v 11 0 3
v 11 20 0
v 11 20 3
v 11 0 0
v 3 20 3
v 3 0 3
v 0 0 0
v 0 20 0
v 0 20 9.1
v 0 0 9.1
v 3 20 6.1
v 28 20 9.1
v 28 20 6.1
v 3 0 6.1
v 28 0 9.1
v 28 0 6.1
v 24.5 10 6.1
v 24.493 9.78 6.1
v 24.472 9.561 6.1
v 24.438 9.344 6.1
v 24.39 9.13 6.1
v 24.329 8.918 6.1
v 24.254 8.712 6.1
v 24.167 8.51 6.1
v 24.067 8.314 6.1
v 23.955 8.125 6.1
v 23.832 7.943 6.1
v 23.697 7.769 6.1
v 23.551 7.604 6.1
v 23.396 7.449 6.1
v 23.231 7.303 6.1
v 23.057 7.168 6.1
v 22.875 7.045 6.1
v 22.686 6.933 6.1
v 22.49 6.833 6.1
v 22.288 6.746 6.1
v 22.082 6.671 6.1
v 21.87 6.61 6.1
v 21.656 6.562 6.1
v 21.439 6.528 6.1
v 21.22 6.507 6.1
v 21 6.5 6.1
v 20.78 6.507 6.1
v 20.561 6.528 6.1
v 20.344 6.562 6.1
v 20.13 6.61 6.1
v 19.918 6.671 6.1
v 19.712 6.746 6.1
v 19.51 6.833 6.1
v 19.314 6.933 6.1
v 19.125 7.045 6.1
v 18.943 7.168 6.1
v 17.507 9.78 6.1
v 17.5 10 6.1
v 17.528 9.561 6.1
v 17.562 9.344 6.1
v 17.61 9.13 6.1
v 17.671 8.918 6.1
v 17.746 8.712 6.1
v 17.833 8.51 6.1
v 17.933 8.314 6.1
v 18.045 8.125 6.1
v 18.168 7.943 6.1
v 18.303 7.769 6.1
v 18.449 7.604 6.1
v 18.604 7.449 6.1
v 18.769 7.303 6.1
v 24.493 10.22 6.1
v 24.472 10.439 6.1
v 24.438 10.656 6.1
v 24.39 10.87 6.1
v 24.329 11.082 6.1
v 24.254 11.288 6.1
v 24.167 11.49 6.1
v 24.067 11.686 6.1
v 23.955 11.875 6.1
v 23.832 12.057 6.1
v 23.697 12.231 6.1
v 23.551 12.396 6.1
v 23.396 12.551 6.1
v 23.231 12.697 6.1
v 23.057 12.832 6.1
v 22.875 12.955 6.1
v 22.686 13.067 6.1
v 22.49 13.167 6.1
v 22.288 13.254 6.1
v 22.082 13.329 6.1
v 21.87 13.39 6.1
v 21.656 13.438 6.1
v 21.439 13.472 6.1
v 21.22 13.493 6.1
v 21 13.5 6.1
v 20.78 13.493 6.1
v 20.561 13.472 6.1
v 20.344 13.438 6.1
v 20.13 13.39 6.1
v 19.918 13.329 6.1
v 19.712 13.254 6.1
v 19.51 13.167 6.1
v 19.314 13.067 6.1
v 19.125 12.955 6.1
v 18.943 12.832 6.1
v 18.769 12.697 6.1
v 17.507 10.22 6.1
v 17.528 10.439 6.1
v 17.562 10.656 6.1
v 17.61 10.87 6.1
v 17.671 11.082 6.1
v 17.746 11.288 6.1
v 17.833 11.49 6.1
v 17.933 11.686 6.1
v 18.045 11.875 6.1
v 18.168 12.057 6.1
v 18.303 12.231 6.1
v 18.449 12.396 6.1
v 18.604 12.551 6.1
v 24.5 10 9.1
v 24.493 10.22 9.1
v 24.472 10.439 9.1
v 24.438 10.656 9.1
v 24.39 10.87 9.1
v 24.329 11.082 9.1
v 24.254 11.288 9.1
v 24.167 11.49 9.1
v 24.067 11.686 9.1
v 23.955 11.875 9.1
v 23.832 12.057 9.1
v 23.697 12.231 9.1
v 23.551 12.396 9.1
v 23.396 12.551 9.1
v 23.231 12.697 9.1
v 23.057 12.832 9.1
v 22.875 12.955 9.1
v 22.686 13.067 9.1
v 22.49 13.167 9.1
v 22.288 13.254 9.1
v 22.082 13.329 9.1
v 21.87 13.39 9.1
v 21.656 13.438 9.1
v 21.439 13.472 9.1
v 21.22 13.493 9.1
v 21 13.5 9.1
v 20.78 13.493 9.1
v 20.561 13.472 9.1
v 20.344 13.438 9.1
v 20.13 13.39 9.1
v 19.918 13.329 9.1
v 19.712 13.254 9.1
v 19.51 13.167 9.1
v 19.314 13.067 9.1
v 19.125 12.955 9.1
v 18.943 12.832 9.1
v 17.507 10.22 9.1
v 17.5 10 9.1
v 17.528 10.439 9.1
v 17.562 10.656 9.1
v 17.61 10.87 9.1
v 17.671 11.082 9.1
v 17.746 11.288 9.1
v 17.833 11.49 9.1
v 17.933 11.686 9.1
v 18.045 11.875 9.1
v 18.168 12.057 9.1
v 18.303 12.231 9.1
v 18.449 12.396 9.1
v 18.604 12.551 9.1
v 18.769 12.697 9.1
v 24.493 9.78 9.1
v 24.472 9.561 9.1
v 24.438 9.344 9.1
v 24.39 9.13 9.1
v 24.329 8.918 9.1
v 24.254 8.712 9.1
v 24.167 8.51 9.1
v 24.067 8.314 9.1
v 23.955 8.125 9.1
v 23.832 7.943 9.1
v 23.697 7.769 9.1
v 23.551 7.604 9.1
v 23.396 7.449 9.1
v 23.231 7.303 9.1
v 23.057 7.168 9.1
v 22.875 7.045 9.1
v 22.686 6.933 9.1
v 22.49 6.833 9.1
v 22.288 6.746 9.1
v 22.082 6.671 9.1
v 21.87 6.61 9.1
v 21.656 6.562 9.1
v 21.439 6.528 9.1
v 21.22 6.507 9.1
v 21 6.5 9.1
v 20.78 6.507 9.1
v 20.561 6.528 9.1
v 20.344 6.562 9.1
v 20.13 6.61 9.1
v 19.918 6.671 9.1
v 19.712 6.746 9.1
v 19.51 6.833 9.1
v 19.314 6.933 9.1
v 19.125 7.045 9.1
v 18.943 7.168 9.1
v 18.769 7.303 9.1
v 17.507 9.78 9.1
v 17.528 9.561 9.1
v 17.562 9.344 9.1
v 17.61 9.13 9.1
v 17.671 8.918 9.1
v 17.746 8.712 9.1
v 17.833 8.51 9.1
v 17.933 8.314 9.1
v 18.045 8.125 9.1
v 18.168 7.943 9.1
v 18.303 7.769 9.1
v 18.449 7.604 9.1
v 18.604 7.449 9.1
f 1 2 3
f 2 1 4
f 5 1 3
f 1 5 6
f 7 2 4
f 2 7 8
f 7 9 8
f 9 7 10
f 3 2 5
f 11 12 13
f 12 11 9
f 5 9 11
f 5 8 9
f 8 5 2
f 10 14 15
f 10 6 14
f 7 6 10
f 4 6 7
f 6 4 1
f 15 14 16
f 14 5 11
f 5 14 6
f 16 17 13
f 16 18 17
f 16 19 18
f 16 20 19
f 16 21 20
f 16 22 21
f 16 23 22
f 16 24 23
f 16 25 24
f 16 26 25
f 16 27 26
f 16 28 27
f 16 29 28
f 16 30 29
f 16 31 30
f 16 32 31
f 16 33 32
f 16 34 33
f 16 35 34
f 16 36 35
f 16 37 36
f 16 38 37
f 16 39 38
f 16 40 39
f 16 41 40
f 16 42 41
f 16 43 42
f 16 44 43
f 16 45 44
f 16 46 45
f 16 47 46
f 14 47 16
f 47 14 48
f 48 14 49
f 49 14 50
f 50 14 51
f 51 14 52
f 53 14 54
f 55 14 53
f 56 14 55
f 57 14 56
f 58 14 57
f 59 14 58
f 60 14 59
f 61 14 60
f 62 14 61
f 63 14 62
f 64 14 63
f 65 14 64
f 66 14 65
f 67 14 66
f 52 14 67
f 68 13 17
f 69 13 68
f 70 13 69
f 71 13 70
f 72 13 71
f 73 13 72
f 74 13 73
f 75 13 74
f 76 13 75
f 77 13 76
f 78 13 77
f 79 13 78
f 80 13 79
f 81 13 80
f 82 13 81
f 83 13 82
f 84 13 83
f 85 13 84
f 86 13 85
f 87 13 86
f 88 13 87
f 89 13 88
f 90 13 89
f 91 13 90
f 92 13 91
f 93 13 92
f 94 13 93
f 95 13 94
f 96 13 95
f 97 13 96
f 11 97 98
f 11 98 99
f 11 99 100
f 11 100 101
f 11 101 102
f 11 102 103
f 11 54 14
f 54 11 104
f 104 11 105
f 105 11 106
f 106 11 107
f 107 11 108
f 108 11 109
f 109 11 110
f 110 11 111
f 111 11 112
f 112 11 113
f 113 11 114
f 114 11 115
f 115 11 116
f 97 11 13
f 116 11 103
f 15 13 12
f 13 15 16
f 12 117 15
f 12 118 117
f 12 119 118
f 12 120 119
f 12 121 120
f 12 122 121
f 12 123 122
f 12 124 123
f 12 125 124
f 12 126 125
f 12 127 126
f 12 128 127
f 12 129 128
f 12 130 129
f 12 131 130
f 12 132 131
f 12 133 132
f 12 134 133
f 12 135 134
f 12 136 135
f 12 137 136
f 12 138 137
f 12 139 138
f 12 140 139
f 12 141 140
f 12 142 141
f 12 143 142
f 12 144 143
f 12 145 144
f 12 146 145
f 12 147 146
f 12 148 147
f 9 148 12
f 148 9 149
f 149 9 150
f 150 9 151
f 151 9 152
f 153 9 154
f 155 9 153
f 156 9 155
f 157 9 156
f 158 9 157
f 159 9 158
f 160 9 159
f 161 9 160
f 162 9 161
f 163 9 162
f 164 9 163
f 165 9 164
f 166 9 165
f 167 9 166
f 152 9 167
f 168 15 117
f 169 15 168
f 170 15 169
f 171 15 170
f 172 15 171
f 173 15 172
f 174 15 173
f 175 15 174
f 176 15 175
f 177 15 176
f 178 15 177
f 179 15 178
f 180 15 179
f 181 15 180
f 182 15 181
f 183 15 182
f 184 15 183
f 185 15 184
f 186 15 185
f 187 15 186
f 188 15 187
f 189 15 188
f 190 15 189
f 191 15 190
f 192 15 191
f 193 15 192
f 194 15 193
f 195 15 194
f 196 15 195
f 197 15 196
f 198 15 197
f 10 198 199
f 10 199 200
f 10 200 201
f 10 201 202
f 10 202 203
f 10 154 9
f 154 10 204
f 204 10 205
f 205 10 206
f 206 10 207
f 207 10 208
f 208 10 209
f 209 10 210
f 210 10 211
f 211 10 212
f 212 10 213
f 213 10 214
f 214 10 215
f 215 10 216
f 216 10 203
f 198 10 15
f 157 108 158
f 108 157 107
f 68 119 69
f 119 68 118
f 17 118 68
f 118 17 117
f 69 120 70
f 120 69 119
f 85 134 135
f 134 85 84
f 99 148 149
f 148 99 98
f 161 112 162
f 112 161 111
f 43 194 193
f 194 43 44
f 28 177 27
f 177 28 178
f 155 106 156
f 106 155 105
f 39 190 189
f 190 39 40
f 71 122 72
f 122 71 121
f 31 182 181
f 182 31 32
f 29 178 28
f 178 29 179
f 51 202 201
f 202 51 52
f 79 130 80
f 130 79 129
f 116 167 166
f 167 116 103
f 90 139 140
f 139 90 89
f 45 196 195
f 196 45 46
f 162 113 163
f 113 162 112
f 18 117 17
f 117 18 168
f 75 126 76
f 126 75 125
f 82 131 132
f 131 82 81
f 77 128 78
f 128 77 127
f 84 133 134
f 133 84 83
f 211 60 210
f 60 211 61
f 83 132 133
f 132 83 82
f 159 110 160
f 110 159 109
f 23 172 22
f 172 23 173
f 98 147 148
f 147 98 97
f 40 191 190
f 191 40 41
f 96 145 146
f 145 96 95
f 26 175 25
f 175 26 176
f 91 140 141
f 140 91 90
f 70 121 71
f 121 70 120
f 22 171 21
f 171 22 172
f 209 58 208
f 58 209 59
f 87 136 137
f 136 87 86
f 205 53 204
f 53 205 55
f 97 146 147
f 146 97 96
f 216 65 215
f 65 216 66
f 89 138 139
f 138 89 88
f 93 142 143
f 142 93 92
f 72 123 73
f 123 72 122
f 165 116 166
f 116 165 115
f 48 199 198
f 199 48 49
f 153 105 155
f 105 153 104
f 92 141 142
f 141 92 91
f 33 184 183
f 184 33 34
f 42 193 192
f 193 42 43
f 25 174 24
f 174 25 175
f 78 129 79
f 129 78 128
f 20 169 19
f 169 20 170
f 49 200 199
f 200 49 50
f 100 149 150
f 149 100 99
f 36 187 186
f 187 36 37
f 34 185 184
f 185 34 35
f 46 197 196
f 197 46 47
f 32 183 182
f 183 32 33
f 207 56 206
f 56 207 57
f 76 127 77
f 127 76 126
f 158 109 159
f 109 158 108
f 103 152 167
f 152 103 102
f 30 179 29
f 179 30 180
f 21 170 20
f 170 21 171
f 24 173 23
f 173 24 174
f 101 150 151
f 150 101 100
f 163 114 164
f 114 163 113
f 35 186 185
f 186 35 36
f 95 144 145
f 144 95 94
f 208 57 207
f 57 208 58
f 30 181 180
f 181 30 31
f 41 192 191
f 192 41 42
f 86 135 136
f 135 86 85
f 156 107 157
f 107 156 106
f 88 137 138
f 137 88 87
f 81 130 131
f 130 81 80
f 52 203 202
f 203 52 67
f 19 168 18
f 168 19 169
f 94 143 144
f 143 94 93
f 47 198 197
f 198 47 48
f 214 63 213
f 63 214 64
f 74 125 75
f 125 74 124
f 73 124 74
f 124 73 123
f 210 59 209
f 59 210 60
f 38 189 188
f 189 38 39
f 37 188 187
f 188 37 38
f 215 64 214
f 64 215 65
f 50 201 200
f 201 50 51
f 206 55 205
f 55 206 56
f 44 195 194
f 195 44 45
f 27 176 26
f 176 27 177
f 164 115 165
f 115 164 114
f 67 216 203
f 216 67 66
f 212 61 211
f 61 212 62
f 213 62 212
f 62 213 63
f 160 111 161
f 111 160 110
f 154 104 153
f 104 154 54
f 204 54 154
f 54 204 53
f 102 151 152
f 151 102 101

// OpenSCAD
difference() {
    union() {
        width=20;
        cube(size=[11,width,3]);
        
        translate([0, 0, 3])
        cube(size=[3,width,3.1]);

        translate([0, 0, 6.1])
        cube(size=[28,width, 3]);
    }
    union () {
        translate([21, 10, 0])
        cylinder(h=35, r=3.5, center=false, $fn=100);
    }
}
